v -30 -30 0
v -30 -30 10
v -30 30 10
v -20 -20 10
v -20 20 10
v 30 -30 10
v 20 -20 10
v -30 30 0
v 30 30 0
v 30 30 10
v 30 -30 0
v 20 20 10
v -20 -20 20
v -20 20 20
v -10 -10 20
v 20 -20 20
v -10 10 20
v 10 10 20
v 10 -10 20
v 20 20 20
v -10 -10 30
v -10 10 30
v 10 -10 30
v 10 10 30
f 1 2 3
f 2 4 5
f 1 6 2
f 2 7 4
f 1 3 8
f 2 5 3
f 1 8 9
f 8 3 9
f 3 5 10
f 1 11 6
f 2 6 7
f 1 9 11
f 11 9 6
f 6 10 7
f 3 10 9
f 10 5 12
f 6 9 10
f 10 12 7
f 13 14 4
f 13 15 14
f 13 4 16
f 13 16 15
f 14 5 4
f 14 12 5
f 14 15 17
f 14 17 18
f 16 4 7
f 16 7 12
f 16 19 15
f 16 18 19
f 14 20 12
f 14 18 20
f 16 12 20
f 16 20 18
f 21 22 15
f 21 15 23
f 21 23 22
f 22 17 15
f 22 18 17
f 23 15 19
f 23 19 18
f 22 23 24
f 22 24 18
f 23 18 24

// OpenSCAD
// 3段のステップピラミッド
// 各段は中心を揃えて積み上げる

step_sizes = [60, 40, 20];  // 各段の一辺の長さ (mm)
step_height = 10;           // 各段の高さ (mm)

module step_pyramid(sizes, h) {
    for (i = [0 : len(sizes) - 1]) {
        translate([0, 0, i * h])
            cube([sizes[i], sizes[i], h], center = false);
    }
}

// 中心を揃えるために各段を移動させる版
module step_pyramid_centered(sizes, h) {
    for (i = [0 : len(sizes) - 1]) {
        translate([0, 0, i * h + h / 2])
            cube([sizes[i], sizes[i], h], center = true);
    }
}

step_pyramid_centered(step_sizes, step_height);
